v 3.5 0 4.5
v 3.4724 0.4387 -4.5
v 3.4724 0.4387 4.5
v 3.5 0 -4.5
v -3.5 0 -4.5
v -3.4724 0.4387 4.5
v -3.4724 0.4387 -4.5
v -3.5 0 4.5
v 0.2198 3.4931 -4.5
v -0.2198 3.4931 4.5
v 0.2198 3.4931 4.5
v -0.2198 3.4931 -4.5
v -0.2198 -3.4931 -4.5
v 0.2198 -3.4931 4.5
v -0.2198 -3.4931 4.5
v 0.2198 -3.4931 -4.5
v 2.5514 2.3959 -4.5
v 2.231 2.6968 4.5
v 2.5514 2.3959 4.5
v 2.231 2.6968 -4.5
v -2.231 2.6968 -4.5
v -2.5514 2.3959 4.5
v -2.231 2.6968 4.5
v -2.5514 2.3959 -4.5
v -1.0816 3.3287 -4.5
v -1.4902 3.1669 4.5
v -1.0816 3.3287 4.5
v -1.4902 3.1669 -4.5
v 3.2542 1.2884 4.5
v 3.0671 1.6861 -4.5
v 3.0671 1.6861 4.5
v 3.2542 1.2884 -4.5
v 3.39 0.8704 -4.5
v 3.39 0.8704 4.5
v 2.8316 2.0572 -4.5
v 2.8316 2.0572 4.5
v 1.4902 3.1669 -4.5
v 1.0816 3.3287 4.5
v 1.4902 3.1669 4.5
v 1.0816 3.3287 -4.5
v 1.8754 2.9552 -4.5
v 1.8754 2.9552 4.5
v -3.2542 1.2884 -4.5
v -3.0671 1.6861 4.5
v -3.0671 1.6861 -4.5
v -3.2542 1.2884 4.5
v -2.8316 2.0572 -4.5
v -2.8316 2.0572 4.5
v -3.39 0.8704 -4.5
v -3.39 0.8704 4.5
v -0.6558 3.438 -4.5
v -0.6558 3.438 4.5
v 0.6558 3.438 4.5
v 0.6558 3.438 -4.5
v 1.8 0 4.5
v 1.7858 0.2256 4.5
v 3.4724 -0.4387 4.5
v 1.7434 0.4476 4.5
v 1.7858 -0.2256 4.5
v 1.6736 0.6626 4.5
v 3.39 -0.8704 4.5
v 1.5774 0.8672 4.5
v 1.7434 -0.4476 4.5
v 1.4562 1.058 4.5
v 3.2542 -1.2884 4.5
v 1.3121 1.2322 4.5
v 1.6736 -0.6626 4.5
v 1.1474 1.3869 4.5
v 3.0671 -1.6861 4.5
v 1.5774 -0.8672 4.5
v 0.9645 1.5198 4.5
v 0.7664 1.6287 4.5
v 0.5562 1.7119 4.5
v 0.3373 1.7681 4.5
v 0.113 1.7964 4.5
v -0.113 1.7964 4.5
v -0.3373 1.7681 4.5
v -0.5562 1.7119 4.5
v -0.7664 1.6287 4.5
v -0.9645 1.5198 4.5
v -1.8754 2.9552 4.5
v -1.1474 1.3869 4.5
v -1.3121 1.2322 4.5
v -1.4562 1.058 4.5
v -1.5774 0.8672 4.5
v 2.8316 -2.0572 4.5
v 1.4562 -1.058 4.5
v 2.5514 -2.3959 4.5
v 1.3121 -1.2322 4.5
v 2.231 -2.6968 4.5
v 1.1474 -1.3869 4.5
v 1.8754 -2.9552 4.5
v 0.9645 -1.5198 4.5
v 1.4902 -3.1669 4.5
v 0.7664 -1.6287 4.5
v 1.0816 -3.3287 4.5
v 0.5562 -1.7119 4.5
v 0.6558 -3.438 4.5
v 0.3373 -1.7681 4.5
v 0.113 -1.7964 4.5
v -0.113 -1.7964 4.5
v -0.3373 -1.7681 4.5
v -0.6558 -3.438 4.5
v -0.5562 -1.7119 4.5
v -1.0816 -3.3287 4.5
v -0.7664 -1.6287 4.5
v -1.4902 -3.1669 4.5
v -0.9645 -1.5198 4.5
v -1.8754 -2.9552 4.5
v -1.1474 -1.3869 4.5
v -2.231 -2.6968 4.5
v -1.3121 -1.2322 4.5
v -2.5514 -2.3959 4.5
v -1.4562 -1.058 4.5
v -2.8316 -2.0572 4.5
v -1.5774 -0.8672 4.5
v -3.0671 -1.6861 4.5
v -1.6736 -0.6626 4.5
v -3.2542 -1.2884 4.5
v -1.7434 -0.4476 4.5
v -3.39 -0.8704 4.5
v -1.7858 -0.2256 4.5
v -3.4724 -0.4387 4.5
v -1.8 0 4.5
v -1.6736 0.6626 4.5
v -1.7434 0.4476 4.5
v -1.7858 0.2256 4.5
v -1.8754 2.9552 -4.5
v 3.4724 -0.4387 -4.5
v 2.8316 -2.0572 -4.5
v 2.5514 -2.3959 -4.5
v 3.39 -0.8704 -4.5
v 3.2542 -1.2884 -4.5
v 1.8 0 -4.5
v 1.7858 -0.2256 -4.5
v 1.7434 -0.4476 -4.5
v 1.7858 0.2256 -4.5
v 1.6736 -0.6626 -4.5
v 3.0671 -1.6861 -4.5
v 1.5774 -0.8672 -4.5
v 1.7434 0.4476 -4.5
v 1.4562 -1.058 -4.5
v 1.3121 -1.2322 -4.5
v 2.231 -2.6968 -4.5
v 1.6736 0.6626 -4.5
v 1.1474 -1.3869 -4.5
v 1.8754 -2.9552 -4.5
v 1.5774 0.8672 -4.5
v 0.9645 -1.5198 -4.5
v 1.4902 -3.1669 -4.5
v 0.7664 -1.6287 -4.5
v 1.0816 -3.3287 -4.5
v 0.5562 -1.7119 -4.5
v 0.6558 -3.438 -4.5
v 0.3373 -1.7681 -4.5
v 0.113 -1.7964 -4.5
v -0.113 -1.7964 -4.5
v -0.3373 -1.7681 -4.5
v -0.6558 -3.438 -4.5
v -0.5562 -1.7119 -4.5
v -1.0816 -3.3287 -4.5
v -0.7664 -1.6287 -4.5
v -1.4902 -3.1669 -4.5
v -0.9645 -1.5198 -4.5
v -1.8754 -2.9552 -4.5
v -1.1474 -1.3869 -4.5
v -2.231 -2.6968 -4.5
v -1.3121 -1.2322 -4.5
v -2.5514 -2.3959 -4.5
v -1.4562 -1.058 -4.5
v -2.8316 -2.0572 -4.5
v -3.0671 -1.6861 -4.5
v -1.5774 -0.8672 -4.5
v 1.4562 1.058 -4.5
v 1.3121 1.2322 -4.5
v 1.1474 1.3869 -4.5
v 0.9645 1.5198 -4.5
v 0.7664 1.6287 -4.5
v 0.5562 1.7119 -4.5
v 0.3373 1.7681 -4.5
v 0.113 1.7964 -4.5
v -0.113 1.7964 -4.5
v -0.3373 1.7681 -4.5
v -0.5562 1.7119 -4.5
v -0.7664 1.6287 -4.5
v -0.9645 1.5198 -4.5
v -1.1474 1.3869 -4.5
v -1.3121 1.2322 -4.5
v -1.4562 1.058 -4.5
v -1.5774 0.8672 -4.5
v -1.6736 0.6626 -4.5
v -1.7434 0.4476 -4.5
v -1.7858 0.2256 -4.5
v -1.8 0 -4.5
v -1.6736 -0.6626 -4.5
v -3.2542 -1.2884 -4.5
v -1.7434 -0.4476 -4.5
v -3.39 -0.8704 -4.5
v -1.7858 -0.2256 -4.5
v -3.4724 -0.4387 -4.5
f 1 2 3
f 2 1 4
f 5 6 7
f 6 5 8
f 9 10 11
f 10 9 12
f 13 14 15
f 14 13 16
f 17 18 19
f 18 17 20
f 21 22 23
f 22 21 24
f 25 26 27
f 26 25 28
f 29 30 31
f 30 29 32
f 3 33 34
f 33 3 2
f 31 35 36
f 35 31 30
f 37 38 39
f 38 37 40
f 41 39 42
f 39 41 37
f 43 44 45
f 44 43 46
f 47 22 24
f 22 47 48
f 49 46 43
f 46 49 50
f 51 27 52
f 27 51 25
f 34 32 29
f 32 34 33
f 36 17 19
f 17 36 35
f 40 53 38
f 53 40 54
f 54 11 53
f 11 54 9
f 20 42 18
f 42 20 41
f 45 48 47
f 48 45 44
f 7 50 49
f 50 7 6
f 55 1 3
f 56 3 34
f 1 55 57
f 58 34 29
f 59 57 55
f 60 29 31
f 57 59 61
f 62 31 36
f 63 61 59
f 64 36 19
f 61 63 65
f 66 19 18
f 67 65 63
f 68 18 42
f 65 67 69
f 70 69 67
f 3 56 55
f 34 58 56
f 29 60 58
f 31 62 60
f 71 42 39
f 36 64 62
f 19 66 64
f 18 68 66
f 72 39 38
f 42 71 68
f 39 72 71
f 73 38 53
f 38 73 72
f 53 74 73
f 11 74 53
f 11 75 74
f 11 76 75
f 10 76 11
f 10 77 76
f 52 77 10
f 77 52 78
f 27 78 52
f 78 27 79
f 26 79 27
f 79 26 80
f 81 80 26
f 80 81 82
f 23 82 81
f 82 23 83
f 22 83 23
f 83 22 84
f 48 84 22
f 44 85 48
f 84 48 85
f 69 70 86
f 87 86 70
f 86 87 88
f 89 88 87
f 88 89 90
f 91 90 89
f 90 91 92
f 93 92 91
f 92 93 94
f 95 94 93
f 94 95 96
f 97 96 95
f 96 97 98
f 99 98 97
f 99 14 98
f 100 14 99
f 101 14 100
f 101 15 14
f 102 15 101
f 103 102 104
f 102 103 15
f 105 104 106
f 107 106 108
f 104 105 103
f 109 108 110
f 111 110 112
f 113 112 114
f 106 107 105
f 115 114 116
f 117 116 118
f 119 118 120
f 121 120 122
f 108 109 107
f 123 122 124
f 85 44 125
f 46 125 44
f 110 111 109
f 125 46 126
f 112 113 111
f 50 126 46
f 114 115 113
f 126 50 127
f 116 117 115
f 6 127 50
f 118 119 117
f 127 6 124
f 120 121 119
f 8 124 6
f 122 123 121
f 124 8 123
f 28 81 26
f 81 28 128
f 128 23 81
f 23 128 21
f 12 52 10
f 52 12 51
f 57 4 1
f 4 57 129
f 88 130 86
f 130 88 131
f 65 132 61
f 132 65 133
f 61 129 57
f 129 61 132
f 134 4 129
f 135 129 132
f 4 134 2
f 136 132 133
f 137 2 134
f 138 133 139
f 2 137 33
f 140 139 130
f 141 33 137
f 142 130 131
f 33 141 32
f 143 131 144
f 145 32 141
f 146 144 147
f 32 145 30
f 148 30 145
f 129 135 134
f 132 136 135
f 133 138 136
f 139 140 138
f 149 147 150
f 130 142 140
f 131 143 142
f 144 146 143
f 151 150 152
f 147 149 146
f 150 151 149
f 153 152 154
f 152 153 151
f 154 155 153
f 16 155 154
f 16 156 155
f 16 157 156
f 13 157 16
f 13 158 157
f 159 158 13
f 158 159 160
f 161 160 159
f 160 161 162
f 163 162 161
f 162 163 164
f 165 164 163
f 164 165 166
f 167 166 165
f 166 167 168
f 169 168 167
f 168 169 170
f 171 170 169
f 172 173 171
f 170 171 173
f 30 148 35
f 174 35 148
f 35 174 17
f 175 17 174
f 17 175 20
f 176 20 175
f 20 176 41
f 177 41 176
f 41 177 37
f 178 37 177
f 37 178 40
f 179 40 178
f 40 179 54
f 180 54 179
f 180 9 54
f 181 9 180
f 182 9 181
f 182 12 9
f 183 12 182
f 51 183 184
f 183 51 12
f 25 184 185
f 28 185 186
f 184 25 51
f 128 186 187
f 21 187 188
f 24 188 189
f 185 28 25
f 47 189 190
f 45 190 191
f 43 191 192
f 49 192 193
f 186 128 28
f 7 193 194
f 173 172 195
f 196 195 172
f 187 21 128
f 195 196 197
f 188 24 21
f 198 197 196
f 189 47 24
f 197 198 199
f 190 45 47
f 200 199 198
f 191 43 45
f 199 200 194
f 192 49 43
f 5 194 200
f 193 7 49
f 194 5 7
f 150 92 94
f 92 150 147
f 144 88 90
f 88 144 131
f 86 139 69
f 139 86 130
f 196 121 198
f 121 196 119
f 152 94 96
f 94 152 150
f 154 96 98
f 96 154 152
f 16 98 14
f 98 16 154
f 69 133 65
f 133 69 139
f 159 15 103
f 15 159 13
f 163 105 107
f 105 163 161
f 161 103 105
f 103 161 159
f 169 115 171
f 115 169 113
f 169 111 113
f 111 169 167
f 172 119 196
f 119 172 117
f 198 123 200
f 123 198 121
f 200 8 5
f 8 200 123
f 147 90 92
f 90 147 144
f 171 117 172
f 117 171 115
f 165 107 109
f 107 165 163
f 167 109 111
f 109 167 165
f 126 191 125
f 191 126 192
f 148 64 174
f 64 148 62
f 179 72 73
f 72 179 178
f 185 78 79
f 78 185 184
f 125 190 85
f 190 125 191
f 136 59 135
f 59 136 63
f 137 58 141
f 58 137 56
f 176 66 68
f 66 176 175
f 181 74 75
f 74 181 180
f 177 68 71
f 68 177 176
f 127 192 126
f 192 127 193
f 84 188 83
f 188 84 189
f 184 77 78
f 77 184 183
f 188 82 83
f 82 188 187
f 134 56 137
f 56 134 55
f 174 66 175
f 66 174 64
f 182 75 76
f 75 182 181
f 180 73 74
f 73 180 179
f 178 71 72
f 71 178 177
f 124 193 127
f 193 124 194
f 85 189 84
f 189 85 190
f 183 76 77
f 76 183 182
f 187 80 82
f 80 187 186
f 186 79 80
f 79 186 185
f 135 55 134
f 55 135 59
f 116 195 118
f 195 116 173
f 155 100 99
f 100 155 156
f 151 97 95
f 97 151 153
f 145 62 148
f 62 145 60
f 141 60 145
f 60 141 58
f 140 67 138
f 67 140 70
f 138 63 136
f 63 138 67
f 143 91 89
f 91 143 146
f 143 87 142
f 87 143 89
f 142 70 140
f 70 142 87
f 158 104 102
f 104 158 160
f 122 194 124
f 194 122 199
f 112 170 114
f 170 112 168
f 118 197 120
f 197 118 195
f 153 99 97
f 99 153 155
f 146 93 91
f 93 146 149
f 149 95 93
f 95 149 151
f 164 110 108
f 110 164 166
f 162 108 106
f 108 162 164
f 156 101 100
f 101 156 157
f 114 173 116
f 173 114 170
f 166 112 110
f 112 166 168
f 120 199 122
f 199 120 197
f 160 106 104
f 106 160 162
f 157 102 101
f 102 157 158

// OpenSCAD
$fn = 50;


difference() {
	union() {
		translate(v = [0, 0, -4.5000000000]) {
			cylinder(h = 9, r = 3.5000000000);
		}
	}
	union() {
		translate(v = [0, 0, -100.0000000000]) {
			cylinder(h = 200, r = 1.8000000000);
		}
	}
}
